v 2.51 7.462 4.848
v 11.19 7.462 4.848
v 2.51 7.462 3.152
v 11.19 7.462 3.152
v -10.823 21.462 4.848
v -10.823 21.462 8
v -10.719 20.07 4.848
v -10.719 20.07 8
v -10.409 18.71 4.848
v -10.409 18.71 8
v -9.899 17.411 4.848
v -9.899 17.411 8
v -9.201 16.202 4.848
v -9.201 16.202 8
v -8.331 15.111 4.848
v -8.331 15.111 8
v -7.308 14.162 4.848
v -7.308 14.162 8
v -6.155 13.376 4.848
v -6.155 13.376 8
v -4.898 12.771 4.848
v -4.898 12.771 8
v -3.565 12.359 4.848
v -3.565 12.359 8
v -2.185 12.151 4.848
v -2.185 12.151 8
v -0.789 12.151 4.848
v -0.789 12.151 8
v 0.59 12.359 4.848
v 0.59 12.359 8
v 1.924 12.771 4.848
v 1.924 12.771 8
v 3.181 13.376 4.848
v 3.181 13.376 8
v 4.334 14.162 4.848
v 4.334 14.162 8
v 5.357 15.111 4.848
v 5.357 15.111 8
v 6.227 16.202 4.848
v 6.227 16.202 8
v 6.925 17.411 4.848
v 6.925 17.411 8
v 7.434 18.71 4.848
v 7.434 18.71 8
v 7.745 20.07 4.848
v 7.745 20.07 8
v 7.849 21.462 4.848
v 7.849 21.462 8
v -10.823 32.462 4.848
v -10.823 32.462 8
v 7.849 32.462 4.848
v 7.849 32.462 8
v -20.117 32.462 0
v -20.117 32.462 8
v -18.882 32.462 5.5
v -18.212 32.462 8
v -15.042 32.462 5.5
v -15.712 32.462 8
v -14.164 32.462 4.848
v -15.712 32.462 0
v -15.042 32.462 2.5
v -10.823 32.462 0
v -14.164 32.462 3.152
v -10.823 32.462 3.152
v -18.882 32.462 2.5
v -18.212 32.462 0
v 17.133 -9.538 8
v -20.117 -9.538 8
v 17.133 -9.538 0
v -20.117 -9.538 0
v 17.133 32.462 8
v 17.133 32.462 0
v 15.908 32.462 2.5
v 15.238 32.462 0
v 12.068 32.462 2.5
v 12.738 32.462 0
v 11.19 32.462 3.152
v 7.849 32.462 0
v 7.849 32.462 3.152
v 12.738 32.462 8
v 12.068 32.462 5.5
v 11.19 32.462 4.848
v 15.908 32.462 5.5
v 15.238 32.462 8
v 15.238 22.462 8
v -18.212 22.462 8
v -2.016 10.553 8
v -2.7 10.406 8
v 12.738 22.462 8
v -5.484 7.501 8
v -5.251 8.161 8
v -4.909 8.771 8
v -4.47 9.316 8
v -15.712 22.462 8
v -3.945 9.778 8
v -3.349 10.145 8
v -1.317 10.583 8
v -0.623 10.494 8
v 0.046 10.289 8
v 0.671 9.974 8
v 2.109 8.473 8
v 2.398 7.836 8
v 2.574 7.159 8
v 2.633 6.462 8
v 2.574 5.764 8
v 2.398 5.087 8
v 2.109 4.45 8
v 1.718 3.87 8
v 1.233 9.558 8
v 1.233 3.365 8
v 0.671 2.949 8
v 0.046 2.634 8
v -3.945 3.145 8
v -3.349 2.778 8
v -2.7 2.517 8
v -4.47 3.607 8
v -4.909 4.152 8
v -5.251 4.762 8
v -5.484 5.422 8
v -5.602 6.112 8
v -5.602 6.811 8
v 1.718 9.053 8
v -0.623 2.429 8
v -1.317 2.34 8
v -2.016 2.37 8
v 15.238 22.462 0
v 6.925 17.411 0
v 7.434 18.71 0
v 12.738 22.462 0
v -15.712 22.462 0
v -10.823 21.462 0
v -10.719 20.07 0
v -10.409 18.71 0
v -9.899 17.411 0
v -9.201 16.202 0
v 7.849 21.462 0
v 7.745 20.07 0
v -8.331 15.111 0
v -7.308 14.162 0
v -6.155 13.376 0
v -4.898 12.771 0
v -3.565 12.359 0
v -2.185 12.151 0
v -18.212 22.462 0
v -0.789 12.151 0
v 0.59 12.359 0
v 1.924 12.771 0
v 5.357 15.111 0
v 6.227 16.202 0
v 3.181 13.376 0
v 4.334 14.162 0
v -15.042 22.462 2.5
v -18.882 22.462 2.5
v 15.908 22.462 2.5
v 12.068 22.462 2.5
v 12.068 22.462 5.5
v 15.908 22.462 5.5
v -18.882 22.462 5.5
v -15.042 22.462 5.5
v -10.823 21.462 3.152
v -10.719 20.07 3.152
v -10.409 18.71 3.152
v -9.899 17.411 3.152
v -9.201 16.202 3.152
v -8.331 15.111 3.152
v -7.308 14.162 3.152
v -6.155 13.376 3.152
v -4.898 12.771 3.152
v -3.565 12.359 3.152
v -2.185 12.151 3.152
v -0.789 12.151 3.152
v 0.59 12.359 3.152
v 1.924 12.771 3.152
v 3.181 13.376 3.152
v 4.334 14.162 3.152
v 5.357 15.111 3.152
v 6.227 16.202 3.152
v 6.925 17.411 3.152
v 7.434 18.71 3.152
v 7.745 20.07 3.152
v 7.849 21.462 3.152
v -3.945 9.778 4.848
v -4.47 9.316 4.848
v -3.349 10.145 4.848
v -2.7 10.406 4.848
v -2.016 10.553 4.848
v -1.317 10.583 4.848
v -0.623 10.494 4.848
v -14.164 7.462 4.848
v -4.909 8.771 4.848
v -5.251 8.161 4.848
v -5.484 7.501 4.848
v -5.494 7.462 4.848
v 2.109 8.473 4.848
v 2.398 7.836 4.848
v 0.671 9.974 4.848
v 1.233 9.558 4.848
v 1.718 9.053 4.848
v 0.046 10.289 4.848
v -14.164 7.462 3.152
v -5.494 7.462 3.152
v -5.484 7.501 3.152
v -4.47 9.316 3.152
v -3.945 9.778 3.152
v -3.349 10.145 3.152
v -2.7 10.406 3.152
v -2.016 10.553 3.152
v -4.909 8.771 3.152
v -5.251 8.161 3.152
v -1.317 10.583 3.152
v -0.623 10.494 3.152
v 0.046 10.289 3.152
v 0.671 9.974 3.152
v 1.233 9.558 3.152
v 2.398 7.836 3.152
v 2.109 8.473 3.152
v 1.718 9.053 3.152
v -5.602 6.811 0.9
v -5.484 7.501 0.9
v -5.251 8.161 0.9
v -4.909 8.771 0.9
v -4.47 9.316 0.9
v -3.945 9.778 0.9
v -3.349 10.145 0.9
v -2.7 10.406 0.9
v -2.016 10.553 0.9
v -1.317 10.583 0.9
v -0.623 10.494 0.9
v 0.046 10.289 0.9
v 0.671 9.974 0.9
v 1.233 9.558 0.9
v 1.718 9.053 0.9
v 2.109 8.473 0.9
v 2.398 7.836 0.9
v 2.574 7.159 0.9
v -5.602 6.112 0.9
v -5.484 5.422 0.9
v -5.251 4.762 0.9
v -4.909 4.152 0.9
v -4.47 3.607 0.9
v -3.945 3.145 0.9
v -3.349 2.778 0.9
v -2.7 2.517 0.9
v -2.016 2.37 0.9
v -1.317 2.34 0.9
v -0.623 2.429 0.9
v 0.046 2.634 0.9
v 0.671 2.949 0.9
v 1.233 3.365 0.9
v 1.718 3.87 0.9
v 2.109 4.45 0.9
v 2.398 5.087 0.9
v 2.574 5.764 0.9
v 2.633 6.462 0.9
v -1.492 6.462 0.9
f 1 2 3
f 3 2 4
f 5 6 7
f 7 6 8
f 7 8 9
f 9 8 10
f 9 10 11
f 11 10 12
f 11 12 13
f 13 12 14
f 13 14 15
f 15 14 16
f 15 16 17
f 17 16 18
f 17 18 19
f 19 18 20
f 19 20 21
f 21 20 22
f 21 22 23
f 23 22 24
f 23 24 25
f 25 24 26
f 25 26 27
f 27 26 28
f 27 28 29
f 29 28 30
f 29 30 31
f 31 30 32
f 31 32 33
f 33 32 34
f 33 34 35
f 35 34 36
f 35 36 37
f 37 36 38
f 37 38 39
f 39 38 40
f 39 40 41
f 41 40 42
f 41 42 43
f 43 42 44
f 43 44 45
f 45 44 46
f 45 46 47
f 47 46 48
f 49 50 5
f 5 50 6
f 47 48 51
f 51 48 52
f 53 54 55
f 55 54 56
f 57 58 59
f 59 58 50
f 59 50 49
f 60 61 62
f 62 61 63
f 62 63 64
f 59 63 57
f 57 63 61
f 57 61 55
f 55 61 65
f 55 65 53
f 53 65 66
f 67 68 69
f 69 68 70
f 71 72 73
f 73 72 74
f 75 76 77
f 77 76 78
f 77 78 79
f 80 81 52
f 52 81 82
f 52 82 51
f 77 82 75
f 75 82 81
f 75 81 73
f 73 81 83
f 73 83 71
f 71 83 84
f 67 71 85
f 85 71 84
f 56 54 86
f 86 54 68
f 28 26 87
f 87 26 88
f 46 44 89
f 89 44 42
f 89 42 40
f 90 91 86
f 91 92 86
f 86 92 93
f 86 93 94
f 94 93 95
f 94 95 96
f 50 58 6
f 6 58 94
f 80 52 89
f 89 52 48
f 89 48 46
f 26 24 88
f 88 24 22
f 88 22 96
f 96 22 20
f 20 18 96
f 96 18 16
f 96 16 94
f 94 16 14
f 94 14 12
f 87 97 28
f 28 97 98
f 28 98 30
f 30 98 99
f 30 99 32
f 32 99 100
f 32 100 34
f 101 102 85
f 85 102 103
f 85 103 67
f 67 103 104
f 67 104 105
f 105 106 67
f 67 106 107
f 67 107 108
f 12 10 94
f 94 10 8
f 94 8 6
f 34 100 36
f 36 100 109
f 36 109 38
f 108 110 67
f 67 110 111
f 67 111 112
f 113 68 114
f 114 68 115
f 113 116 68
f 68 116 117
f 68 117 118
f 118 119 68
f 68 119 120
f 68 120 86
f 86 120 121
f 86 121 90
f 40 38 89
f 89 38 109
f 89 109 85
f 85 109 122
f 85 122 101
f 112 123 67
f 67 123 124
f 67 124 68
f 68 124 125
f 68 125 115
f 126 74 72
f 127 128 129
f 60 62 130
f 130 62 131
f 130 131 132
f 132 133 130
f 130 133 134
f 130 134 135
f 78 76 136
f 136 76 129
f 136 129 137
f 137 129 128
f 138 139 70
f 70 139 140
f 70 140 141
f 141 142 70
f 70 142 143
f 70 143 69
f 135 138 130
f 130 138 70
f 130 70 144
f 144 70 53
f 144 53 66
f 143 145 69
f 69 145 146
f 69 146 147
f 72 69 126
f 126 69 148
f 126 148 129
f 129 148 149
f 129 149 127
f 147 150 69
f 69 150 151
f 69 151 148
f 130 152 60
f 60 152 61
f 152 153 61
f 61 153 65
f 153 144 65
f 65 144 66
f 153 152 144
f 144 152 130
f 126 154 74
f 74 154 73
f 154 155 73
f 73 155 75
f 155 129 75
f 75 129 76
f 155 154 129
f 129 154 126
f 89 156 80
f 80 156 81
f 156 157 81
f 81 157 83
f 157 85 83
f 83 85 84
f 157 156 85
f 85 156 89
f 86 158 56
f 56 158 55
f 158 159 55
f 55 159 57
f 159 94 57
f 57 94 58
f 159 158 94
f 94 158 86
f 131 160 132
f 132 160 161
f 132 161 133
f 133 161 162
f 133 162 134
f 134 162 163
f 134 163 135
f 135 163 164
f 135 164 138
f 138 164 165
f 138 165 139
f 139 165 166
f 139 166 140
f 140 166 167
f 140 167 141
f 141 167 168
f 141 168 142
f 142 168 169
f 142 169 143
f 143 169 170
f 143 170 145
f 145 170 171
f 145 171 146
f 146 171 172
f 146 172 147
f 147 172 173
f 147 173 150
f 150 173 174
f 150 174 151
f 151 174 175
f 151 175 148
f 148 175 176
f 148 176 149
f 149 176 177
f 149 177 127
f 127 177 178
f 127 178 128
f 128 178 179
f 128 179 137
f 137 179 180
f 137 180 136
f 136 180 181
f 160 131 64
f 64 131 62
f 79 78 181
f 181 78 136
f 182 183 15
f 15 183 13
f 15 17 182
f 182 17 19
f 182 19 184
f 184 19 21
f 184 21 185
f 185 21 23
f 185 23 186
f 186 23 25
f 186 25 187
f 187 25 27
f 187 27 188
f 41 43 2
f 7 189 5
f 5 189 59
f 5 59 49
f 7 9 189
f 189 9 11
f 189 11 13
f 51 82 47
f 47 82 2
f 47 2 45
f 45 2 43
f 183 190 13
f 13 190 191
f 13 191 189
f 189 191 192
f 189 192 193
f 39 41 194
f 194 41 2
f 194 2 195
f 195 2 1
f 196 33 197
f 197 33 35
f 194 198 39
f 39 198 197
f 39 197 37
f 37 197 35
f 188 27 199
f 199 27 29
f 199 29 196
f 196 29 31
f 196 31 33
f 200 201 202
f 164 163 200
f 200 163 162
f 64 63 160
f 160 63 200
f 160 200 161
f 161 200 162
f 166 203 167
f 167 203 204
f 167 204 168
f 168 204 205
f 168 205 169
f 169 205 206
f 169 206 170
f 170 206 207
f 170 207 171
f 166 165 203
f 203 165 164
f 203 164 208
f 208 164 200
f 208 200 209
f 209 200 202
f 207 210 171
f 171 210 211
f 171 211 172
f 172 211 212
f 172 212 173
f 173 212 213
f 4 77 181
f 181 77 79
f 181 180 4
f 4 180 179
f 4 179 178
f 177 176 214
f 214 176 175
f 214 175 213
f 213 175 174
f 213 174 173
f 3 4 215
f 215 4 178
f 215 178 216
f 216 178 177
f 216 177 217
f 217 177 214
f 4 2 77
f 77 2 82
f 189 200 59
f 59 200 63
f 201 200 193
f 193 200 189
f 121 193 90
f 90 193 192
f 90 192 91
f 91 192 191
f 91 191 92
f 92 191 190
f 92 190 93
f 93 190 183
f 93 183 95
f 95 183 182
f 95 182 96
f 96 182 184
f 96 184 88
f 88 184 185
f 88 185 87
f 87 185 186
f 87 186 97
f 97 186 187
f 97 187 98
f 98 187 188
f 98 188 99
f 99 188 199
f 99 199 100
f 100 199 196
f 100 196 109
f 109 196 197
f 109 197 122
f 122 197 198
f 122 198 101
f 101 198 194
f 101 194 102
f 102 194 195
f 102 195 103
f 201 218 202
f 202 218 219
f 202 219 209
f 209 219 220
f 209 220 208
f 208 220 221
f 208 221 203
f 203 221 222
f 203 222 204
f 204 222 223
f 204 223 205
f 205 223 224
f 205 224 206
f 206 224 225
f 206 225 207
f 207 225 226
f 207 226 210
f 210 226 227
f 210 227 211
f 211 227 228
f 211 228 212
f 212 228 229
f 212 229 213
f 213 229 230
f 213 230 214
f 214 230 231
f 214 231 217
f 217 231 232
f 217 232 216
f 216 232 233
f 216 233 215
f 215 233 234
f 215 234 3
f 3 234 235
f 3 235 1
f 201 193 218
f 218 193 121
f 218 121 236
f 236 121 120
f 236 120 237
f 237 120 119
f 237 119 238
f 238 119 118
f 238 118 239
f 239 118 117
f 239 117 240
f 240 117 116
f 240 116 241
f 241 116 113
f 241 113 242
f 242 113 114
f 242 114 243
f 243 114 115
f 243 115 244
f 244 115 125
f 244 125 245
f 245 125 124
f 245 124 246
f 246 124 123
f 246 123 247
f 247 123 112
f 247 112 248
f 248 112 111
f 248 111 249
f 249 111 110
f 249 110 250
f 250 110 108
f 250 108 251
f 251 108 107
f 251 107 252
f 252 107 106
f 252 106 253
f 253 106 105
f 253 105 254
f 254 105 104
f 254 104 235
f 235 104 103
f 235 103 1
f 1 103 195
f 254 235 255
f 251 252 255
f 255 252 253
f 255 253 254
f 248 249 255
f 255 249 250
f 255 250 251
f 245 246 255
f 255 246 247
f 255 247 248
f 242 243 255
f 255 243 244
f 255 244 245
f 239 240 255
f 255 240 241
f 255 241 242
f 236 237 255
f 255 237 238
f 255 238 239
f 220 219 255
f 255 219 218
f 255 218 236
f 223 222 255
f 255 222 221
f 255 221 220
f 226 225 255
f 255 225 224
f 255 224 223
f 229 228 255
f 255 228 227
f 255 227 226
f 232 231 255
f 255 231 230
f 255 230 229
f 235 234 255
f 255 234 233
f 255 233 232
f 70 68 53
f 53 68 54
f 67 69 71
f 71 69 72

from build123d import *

# Parameters (mm, degrees)
SKETCH2_W           = 36
SKETCH2_H           = 42
BOSS_EXTRUDE1_DEPTH = 8
CUT_EXTRUDE1_DEPTH  = 10
CUT_EXTRUDE2_DEPTH  = 10
SKETCH5_W           = 25.353942038
SKETCH5_H           = 1.695405108
CUT_EXTRUDE3_DEPTH  = 25
SKETCH6_R           = 4.125
CUT_EXTRUDE4_DEPTH  = 7.1
SKETCH7_W           = 0.63
SKETCH7_H           = 8
SKETCH7_W_2         = 0.620319398
BOSS_EXTRUDE2_DEPTH = 42


with BuildPart() as part:
    # Sketch2 → Boss-Extrude1 (new body)
    with BuildSketch(Plane.XY):
        with Locations((-1.487179487, 11.461538462)):
            Rectangle(SKETCH2_W, SKETCH2_H)
    extrude(amount=BOSS_EXTRUDE1_DEPTH)

    # Sketch3 → Cut-Extrude1 (cut)
    with BuildSketch(Plane(origin=(0, 32.461538462, 0), x_dir=(1, 0, 0), z_dir=(0, 1, 0))):
        Polygon((-18.212179487, 0), (-18.882052468, -2.5), (-15.042306506, -2.5), (-15.712179487, 0), align=None)
        Polygon((-18.212179487, -8), (-18.882052468, -5.5), (-15.042306506, -5.5), (-15.712179487, -8), align=None)
        Polygon((15.237820513, 0), (15.907693494, -2.5), (12.067947532, -2.5), (12.737820513, 0), align=None)
        Polygon((15.237820513, -8), (15.907693494, -5.5), (12.067947532, -5.5), (12.737820513, -8), align=None)
    extrude(amount=-CUT_EXTRUDE1_DEPTH, mode=Mode.SUBTRACT)

    # Sketch4 → Cut-Extrude2 (cut)
    with BuildSketch(Plane.XY.offset(8)):
        with BuildLine():
            Line((-10.823469947, 32.461538462), (7.849110972, 32.461538462))
            Line((7.849110972, 32.461538462), (7.849110972, 21.461538462))
            ThreePointArc((7.849110972, 21.461538462), (-1.487179487, 12.125248002), (-10.823469947, 21.461538462))
            Line((-10.823469947, 21.461538462), (-10.823469947, 32.461538462))
        make_face()
    extrude(amount=-CUT_EXTRUDE2_DEPTH, mode=Mode.SUBTRACT)

    # Sketch5 → Cut-Extrude3 (cut)
    with BuildSketch(Plane(origin=(0, 32.461538462, 0), x_dir=(1, 0, 0), z_dir=(0, 1, 0))):
        with Locations((-1.487179487, -4)):
            Rectangle(SKETCH5_W, SKETCH5_H)
    extrude(amount=-CUT_EXTRUDE3_DEPTH, mode=Mode.SUBTRACT)

    # Sketch6 → Cut-Extrude4 (cut)
    with BuildSketch(Plane.XY.offset(8)):
        with Locations((-1.491860089, 6.461538462)):
            Circle(SKETCH6_R)
    extrude(amount=-CUT_EXTRUDE4_DEPTH, mode=Mode.SUBTRACT)

    # Sketch7 → Boss-Extrude2 (add)
    with BuildSketch(Plane(origin=(0, 32.461538462, 0), x_dir=(1, 0, 0), z_dir=(0, 1, 0))):
        with Locations((-19.802179487, -4)):
            Rectangle(SKETCH7_W, SKETCH7_H)
        with Locations((16.822980212, -4)):
            Rectangle(SKETCH7_W_2, SKETCH7_H)
    extrude(amount=-BOSS_EXTRUDE2_DEPTH)


solid = part.part
